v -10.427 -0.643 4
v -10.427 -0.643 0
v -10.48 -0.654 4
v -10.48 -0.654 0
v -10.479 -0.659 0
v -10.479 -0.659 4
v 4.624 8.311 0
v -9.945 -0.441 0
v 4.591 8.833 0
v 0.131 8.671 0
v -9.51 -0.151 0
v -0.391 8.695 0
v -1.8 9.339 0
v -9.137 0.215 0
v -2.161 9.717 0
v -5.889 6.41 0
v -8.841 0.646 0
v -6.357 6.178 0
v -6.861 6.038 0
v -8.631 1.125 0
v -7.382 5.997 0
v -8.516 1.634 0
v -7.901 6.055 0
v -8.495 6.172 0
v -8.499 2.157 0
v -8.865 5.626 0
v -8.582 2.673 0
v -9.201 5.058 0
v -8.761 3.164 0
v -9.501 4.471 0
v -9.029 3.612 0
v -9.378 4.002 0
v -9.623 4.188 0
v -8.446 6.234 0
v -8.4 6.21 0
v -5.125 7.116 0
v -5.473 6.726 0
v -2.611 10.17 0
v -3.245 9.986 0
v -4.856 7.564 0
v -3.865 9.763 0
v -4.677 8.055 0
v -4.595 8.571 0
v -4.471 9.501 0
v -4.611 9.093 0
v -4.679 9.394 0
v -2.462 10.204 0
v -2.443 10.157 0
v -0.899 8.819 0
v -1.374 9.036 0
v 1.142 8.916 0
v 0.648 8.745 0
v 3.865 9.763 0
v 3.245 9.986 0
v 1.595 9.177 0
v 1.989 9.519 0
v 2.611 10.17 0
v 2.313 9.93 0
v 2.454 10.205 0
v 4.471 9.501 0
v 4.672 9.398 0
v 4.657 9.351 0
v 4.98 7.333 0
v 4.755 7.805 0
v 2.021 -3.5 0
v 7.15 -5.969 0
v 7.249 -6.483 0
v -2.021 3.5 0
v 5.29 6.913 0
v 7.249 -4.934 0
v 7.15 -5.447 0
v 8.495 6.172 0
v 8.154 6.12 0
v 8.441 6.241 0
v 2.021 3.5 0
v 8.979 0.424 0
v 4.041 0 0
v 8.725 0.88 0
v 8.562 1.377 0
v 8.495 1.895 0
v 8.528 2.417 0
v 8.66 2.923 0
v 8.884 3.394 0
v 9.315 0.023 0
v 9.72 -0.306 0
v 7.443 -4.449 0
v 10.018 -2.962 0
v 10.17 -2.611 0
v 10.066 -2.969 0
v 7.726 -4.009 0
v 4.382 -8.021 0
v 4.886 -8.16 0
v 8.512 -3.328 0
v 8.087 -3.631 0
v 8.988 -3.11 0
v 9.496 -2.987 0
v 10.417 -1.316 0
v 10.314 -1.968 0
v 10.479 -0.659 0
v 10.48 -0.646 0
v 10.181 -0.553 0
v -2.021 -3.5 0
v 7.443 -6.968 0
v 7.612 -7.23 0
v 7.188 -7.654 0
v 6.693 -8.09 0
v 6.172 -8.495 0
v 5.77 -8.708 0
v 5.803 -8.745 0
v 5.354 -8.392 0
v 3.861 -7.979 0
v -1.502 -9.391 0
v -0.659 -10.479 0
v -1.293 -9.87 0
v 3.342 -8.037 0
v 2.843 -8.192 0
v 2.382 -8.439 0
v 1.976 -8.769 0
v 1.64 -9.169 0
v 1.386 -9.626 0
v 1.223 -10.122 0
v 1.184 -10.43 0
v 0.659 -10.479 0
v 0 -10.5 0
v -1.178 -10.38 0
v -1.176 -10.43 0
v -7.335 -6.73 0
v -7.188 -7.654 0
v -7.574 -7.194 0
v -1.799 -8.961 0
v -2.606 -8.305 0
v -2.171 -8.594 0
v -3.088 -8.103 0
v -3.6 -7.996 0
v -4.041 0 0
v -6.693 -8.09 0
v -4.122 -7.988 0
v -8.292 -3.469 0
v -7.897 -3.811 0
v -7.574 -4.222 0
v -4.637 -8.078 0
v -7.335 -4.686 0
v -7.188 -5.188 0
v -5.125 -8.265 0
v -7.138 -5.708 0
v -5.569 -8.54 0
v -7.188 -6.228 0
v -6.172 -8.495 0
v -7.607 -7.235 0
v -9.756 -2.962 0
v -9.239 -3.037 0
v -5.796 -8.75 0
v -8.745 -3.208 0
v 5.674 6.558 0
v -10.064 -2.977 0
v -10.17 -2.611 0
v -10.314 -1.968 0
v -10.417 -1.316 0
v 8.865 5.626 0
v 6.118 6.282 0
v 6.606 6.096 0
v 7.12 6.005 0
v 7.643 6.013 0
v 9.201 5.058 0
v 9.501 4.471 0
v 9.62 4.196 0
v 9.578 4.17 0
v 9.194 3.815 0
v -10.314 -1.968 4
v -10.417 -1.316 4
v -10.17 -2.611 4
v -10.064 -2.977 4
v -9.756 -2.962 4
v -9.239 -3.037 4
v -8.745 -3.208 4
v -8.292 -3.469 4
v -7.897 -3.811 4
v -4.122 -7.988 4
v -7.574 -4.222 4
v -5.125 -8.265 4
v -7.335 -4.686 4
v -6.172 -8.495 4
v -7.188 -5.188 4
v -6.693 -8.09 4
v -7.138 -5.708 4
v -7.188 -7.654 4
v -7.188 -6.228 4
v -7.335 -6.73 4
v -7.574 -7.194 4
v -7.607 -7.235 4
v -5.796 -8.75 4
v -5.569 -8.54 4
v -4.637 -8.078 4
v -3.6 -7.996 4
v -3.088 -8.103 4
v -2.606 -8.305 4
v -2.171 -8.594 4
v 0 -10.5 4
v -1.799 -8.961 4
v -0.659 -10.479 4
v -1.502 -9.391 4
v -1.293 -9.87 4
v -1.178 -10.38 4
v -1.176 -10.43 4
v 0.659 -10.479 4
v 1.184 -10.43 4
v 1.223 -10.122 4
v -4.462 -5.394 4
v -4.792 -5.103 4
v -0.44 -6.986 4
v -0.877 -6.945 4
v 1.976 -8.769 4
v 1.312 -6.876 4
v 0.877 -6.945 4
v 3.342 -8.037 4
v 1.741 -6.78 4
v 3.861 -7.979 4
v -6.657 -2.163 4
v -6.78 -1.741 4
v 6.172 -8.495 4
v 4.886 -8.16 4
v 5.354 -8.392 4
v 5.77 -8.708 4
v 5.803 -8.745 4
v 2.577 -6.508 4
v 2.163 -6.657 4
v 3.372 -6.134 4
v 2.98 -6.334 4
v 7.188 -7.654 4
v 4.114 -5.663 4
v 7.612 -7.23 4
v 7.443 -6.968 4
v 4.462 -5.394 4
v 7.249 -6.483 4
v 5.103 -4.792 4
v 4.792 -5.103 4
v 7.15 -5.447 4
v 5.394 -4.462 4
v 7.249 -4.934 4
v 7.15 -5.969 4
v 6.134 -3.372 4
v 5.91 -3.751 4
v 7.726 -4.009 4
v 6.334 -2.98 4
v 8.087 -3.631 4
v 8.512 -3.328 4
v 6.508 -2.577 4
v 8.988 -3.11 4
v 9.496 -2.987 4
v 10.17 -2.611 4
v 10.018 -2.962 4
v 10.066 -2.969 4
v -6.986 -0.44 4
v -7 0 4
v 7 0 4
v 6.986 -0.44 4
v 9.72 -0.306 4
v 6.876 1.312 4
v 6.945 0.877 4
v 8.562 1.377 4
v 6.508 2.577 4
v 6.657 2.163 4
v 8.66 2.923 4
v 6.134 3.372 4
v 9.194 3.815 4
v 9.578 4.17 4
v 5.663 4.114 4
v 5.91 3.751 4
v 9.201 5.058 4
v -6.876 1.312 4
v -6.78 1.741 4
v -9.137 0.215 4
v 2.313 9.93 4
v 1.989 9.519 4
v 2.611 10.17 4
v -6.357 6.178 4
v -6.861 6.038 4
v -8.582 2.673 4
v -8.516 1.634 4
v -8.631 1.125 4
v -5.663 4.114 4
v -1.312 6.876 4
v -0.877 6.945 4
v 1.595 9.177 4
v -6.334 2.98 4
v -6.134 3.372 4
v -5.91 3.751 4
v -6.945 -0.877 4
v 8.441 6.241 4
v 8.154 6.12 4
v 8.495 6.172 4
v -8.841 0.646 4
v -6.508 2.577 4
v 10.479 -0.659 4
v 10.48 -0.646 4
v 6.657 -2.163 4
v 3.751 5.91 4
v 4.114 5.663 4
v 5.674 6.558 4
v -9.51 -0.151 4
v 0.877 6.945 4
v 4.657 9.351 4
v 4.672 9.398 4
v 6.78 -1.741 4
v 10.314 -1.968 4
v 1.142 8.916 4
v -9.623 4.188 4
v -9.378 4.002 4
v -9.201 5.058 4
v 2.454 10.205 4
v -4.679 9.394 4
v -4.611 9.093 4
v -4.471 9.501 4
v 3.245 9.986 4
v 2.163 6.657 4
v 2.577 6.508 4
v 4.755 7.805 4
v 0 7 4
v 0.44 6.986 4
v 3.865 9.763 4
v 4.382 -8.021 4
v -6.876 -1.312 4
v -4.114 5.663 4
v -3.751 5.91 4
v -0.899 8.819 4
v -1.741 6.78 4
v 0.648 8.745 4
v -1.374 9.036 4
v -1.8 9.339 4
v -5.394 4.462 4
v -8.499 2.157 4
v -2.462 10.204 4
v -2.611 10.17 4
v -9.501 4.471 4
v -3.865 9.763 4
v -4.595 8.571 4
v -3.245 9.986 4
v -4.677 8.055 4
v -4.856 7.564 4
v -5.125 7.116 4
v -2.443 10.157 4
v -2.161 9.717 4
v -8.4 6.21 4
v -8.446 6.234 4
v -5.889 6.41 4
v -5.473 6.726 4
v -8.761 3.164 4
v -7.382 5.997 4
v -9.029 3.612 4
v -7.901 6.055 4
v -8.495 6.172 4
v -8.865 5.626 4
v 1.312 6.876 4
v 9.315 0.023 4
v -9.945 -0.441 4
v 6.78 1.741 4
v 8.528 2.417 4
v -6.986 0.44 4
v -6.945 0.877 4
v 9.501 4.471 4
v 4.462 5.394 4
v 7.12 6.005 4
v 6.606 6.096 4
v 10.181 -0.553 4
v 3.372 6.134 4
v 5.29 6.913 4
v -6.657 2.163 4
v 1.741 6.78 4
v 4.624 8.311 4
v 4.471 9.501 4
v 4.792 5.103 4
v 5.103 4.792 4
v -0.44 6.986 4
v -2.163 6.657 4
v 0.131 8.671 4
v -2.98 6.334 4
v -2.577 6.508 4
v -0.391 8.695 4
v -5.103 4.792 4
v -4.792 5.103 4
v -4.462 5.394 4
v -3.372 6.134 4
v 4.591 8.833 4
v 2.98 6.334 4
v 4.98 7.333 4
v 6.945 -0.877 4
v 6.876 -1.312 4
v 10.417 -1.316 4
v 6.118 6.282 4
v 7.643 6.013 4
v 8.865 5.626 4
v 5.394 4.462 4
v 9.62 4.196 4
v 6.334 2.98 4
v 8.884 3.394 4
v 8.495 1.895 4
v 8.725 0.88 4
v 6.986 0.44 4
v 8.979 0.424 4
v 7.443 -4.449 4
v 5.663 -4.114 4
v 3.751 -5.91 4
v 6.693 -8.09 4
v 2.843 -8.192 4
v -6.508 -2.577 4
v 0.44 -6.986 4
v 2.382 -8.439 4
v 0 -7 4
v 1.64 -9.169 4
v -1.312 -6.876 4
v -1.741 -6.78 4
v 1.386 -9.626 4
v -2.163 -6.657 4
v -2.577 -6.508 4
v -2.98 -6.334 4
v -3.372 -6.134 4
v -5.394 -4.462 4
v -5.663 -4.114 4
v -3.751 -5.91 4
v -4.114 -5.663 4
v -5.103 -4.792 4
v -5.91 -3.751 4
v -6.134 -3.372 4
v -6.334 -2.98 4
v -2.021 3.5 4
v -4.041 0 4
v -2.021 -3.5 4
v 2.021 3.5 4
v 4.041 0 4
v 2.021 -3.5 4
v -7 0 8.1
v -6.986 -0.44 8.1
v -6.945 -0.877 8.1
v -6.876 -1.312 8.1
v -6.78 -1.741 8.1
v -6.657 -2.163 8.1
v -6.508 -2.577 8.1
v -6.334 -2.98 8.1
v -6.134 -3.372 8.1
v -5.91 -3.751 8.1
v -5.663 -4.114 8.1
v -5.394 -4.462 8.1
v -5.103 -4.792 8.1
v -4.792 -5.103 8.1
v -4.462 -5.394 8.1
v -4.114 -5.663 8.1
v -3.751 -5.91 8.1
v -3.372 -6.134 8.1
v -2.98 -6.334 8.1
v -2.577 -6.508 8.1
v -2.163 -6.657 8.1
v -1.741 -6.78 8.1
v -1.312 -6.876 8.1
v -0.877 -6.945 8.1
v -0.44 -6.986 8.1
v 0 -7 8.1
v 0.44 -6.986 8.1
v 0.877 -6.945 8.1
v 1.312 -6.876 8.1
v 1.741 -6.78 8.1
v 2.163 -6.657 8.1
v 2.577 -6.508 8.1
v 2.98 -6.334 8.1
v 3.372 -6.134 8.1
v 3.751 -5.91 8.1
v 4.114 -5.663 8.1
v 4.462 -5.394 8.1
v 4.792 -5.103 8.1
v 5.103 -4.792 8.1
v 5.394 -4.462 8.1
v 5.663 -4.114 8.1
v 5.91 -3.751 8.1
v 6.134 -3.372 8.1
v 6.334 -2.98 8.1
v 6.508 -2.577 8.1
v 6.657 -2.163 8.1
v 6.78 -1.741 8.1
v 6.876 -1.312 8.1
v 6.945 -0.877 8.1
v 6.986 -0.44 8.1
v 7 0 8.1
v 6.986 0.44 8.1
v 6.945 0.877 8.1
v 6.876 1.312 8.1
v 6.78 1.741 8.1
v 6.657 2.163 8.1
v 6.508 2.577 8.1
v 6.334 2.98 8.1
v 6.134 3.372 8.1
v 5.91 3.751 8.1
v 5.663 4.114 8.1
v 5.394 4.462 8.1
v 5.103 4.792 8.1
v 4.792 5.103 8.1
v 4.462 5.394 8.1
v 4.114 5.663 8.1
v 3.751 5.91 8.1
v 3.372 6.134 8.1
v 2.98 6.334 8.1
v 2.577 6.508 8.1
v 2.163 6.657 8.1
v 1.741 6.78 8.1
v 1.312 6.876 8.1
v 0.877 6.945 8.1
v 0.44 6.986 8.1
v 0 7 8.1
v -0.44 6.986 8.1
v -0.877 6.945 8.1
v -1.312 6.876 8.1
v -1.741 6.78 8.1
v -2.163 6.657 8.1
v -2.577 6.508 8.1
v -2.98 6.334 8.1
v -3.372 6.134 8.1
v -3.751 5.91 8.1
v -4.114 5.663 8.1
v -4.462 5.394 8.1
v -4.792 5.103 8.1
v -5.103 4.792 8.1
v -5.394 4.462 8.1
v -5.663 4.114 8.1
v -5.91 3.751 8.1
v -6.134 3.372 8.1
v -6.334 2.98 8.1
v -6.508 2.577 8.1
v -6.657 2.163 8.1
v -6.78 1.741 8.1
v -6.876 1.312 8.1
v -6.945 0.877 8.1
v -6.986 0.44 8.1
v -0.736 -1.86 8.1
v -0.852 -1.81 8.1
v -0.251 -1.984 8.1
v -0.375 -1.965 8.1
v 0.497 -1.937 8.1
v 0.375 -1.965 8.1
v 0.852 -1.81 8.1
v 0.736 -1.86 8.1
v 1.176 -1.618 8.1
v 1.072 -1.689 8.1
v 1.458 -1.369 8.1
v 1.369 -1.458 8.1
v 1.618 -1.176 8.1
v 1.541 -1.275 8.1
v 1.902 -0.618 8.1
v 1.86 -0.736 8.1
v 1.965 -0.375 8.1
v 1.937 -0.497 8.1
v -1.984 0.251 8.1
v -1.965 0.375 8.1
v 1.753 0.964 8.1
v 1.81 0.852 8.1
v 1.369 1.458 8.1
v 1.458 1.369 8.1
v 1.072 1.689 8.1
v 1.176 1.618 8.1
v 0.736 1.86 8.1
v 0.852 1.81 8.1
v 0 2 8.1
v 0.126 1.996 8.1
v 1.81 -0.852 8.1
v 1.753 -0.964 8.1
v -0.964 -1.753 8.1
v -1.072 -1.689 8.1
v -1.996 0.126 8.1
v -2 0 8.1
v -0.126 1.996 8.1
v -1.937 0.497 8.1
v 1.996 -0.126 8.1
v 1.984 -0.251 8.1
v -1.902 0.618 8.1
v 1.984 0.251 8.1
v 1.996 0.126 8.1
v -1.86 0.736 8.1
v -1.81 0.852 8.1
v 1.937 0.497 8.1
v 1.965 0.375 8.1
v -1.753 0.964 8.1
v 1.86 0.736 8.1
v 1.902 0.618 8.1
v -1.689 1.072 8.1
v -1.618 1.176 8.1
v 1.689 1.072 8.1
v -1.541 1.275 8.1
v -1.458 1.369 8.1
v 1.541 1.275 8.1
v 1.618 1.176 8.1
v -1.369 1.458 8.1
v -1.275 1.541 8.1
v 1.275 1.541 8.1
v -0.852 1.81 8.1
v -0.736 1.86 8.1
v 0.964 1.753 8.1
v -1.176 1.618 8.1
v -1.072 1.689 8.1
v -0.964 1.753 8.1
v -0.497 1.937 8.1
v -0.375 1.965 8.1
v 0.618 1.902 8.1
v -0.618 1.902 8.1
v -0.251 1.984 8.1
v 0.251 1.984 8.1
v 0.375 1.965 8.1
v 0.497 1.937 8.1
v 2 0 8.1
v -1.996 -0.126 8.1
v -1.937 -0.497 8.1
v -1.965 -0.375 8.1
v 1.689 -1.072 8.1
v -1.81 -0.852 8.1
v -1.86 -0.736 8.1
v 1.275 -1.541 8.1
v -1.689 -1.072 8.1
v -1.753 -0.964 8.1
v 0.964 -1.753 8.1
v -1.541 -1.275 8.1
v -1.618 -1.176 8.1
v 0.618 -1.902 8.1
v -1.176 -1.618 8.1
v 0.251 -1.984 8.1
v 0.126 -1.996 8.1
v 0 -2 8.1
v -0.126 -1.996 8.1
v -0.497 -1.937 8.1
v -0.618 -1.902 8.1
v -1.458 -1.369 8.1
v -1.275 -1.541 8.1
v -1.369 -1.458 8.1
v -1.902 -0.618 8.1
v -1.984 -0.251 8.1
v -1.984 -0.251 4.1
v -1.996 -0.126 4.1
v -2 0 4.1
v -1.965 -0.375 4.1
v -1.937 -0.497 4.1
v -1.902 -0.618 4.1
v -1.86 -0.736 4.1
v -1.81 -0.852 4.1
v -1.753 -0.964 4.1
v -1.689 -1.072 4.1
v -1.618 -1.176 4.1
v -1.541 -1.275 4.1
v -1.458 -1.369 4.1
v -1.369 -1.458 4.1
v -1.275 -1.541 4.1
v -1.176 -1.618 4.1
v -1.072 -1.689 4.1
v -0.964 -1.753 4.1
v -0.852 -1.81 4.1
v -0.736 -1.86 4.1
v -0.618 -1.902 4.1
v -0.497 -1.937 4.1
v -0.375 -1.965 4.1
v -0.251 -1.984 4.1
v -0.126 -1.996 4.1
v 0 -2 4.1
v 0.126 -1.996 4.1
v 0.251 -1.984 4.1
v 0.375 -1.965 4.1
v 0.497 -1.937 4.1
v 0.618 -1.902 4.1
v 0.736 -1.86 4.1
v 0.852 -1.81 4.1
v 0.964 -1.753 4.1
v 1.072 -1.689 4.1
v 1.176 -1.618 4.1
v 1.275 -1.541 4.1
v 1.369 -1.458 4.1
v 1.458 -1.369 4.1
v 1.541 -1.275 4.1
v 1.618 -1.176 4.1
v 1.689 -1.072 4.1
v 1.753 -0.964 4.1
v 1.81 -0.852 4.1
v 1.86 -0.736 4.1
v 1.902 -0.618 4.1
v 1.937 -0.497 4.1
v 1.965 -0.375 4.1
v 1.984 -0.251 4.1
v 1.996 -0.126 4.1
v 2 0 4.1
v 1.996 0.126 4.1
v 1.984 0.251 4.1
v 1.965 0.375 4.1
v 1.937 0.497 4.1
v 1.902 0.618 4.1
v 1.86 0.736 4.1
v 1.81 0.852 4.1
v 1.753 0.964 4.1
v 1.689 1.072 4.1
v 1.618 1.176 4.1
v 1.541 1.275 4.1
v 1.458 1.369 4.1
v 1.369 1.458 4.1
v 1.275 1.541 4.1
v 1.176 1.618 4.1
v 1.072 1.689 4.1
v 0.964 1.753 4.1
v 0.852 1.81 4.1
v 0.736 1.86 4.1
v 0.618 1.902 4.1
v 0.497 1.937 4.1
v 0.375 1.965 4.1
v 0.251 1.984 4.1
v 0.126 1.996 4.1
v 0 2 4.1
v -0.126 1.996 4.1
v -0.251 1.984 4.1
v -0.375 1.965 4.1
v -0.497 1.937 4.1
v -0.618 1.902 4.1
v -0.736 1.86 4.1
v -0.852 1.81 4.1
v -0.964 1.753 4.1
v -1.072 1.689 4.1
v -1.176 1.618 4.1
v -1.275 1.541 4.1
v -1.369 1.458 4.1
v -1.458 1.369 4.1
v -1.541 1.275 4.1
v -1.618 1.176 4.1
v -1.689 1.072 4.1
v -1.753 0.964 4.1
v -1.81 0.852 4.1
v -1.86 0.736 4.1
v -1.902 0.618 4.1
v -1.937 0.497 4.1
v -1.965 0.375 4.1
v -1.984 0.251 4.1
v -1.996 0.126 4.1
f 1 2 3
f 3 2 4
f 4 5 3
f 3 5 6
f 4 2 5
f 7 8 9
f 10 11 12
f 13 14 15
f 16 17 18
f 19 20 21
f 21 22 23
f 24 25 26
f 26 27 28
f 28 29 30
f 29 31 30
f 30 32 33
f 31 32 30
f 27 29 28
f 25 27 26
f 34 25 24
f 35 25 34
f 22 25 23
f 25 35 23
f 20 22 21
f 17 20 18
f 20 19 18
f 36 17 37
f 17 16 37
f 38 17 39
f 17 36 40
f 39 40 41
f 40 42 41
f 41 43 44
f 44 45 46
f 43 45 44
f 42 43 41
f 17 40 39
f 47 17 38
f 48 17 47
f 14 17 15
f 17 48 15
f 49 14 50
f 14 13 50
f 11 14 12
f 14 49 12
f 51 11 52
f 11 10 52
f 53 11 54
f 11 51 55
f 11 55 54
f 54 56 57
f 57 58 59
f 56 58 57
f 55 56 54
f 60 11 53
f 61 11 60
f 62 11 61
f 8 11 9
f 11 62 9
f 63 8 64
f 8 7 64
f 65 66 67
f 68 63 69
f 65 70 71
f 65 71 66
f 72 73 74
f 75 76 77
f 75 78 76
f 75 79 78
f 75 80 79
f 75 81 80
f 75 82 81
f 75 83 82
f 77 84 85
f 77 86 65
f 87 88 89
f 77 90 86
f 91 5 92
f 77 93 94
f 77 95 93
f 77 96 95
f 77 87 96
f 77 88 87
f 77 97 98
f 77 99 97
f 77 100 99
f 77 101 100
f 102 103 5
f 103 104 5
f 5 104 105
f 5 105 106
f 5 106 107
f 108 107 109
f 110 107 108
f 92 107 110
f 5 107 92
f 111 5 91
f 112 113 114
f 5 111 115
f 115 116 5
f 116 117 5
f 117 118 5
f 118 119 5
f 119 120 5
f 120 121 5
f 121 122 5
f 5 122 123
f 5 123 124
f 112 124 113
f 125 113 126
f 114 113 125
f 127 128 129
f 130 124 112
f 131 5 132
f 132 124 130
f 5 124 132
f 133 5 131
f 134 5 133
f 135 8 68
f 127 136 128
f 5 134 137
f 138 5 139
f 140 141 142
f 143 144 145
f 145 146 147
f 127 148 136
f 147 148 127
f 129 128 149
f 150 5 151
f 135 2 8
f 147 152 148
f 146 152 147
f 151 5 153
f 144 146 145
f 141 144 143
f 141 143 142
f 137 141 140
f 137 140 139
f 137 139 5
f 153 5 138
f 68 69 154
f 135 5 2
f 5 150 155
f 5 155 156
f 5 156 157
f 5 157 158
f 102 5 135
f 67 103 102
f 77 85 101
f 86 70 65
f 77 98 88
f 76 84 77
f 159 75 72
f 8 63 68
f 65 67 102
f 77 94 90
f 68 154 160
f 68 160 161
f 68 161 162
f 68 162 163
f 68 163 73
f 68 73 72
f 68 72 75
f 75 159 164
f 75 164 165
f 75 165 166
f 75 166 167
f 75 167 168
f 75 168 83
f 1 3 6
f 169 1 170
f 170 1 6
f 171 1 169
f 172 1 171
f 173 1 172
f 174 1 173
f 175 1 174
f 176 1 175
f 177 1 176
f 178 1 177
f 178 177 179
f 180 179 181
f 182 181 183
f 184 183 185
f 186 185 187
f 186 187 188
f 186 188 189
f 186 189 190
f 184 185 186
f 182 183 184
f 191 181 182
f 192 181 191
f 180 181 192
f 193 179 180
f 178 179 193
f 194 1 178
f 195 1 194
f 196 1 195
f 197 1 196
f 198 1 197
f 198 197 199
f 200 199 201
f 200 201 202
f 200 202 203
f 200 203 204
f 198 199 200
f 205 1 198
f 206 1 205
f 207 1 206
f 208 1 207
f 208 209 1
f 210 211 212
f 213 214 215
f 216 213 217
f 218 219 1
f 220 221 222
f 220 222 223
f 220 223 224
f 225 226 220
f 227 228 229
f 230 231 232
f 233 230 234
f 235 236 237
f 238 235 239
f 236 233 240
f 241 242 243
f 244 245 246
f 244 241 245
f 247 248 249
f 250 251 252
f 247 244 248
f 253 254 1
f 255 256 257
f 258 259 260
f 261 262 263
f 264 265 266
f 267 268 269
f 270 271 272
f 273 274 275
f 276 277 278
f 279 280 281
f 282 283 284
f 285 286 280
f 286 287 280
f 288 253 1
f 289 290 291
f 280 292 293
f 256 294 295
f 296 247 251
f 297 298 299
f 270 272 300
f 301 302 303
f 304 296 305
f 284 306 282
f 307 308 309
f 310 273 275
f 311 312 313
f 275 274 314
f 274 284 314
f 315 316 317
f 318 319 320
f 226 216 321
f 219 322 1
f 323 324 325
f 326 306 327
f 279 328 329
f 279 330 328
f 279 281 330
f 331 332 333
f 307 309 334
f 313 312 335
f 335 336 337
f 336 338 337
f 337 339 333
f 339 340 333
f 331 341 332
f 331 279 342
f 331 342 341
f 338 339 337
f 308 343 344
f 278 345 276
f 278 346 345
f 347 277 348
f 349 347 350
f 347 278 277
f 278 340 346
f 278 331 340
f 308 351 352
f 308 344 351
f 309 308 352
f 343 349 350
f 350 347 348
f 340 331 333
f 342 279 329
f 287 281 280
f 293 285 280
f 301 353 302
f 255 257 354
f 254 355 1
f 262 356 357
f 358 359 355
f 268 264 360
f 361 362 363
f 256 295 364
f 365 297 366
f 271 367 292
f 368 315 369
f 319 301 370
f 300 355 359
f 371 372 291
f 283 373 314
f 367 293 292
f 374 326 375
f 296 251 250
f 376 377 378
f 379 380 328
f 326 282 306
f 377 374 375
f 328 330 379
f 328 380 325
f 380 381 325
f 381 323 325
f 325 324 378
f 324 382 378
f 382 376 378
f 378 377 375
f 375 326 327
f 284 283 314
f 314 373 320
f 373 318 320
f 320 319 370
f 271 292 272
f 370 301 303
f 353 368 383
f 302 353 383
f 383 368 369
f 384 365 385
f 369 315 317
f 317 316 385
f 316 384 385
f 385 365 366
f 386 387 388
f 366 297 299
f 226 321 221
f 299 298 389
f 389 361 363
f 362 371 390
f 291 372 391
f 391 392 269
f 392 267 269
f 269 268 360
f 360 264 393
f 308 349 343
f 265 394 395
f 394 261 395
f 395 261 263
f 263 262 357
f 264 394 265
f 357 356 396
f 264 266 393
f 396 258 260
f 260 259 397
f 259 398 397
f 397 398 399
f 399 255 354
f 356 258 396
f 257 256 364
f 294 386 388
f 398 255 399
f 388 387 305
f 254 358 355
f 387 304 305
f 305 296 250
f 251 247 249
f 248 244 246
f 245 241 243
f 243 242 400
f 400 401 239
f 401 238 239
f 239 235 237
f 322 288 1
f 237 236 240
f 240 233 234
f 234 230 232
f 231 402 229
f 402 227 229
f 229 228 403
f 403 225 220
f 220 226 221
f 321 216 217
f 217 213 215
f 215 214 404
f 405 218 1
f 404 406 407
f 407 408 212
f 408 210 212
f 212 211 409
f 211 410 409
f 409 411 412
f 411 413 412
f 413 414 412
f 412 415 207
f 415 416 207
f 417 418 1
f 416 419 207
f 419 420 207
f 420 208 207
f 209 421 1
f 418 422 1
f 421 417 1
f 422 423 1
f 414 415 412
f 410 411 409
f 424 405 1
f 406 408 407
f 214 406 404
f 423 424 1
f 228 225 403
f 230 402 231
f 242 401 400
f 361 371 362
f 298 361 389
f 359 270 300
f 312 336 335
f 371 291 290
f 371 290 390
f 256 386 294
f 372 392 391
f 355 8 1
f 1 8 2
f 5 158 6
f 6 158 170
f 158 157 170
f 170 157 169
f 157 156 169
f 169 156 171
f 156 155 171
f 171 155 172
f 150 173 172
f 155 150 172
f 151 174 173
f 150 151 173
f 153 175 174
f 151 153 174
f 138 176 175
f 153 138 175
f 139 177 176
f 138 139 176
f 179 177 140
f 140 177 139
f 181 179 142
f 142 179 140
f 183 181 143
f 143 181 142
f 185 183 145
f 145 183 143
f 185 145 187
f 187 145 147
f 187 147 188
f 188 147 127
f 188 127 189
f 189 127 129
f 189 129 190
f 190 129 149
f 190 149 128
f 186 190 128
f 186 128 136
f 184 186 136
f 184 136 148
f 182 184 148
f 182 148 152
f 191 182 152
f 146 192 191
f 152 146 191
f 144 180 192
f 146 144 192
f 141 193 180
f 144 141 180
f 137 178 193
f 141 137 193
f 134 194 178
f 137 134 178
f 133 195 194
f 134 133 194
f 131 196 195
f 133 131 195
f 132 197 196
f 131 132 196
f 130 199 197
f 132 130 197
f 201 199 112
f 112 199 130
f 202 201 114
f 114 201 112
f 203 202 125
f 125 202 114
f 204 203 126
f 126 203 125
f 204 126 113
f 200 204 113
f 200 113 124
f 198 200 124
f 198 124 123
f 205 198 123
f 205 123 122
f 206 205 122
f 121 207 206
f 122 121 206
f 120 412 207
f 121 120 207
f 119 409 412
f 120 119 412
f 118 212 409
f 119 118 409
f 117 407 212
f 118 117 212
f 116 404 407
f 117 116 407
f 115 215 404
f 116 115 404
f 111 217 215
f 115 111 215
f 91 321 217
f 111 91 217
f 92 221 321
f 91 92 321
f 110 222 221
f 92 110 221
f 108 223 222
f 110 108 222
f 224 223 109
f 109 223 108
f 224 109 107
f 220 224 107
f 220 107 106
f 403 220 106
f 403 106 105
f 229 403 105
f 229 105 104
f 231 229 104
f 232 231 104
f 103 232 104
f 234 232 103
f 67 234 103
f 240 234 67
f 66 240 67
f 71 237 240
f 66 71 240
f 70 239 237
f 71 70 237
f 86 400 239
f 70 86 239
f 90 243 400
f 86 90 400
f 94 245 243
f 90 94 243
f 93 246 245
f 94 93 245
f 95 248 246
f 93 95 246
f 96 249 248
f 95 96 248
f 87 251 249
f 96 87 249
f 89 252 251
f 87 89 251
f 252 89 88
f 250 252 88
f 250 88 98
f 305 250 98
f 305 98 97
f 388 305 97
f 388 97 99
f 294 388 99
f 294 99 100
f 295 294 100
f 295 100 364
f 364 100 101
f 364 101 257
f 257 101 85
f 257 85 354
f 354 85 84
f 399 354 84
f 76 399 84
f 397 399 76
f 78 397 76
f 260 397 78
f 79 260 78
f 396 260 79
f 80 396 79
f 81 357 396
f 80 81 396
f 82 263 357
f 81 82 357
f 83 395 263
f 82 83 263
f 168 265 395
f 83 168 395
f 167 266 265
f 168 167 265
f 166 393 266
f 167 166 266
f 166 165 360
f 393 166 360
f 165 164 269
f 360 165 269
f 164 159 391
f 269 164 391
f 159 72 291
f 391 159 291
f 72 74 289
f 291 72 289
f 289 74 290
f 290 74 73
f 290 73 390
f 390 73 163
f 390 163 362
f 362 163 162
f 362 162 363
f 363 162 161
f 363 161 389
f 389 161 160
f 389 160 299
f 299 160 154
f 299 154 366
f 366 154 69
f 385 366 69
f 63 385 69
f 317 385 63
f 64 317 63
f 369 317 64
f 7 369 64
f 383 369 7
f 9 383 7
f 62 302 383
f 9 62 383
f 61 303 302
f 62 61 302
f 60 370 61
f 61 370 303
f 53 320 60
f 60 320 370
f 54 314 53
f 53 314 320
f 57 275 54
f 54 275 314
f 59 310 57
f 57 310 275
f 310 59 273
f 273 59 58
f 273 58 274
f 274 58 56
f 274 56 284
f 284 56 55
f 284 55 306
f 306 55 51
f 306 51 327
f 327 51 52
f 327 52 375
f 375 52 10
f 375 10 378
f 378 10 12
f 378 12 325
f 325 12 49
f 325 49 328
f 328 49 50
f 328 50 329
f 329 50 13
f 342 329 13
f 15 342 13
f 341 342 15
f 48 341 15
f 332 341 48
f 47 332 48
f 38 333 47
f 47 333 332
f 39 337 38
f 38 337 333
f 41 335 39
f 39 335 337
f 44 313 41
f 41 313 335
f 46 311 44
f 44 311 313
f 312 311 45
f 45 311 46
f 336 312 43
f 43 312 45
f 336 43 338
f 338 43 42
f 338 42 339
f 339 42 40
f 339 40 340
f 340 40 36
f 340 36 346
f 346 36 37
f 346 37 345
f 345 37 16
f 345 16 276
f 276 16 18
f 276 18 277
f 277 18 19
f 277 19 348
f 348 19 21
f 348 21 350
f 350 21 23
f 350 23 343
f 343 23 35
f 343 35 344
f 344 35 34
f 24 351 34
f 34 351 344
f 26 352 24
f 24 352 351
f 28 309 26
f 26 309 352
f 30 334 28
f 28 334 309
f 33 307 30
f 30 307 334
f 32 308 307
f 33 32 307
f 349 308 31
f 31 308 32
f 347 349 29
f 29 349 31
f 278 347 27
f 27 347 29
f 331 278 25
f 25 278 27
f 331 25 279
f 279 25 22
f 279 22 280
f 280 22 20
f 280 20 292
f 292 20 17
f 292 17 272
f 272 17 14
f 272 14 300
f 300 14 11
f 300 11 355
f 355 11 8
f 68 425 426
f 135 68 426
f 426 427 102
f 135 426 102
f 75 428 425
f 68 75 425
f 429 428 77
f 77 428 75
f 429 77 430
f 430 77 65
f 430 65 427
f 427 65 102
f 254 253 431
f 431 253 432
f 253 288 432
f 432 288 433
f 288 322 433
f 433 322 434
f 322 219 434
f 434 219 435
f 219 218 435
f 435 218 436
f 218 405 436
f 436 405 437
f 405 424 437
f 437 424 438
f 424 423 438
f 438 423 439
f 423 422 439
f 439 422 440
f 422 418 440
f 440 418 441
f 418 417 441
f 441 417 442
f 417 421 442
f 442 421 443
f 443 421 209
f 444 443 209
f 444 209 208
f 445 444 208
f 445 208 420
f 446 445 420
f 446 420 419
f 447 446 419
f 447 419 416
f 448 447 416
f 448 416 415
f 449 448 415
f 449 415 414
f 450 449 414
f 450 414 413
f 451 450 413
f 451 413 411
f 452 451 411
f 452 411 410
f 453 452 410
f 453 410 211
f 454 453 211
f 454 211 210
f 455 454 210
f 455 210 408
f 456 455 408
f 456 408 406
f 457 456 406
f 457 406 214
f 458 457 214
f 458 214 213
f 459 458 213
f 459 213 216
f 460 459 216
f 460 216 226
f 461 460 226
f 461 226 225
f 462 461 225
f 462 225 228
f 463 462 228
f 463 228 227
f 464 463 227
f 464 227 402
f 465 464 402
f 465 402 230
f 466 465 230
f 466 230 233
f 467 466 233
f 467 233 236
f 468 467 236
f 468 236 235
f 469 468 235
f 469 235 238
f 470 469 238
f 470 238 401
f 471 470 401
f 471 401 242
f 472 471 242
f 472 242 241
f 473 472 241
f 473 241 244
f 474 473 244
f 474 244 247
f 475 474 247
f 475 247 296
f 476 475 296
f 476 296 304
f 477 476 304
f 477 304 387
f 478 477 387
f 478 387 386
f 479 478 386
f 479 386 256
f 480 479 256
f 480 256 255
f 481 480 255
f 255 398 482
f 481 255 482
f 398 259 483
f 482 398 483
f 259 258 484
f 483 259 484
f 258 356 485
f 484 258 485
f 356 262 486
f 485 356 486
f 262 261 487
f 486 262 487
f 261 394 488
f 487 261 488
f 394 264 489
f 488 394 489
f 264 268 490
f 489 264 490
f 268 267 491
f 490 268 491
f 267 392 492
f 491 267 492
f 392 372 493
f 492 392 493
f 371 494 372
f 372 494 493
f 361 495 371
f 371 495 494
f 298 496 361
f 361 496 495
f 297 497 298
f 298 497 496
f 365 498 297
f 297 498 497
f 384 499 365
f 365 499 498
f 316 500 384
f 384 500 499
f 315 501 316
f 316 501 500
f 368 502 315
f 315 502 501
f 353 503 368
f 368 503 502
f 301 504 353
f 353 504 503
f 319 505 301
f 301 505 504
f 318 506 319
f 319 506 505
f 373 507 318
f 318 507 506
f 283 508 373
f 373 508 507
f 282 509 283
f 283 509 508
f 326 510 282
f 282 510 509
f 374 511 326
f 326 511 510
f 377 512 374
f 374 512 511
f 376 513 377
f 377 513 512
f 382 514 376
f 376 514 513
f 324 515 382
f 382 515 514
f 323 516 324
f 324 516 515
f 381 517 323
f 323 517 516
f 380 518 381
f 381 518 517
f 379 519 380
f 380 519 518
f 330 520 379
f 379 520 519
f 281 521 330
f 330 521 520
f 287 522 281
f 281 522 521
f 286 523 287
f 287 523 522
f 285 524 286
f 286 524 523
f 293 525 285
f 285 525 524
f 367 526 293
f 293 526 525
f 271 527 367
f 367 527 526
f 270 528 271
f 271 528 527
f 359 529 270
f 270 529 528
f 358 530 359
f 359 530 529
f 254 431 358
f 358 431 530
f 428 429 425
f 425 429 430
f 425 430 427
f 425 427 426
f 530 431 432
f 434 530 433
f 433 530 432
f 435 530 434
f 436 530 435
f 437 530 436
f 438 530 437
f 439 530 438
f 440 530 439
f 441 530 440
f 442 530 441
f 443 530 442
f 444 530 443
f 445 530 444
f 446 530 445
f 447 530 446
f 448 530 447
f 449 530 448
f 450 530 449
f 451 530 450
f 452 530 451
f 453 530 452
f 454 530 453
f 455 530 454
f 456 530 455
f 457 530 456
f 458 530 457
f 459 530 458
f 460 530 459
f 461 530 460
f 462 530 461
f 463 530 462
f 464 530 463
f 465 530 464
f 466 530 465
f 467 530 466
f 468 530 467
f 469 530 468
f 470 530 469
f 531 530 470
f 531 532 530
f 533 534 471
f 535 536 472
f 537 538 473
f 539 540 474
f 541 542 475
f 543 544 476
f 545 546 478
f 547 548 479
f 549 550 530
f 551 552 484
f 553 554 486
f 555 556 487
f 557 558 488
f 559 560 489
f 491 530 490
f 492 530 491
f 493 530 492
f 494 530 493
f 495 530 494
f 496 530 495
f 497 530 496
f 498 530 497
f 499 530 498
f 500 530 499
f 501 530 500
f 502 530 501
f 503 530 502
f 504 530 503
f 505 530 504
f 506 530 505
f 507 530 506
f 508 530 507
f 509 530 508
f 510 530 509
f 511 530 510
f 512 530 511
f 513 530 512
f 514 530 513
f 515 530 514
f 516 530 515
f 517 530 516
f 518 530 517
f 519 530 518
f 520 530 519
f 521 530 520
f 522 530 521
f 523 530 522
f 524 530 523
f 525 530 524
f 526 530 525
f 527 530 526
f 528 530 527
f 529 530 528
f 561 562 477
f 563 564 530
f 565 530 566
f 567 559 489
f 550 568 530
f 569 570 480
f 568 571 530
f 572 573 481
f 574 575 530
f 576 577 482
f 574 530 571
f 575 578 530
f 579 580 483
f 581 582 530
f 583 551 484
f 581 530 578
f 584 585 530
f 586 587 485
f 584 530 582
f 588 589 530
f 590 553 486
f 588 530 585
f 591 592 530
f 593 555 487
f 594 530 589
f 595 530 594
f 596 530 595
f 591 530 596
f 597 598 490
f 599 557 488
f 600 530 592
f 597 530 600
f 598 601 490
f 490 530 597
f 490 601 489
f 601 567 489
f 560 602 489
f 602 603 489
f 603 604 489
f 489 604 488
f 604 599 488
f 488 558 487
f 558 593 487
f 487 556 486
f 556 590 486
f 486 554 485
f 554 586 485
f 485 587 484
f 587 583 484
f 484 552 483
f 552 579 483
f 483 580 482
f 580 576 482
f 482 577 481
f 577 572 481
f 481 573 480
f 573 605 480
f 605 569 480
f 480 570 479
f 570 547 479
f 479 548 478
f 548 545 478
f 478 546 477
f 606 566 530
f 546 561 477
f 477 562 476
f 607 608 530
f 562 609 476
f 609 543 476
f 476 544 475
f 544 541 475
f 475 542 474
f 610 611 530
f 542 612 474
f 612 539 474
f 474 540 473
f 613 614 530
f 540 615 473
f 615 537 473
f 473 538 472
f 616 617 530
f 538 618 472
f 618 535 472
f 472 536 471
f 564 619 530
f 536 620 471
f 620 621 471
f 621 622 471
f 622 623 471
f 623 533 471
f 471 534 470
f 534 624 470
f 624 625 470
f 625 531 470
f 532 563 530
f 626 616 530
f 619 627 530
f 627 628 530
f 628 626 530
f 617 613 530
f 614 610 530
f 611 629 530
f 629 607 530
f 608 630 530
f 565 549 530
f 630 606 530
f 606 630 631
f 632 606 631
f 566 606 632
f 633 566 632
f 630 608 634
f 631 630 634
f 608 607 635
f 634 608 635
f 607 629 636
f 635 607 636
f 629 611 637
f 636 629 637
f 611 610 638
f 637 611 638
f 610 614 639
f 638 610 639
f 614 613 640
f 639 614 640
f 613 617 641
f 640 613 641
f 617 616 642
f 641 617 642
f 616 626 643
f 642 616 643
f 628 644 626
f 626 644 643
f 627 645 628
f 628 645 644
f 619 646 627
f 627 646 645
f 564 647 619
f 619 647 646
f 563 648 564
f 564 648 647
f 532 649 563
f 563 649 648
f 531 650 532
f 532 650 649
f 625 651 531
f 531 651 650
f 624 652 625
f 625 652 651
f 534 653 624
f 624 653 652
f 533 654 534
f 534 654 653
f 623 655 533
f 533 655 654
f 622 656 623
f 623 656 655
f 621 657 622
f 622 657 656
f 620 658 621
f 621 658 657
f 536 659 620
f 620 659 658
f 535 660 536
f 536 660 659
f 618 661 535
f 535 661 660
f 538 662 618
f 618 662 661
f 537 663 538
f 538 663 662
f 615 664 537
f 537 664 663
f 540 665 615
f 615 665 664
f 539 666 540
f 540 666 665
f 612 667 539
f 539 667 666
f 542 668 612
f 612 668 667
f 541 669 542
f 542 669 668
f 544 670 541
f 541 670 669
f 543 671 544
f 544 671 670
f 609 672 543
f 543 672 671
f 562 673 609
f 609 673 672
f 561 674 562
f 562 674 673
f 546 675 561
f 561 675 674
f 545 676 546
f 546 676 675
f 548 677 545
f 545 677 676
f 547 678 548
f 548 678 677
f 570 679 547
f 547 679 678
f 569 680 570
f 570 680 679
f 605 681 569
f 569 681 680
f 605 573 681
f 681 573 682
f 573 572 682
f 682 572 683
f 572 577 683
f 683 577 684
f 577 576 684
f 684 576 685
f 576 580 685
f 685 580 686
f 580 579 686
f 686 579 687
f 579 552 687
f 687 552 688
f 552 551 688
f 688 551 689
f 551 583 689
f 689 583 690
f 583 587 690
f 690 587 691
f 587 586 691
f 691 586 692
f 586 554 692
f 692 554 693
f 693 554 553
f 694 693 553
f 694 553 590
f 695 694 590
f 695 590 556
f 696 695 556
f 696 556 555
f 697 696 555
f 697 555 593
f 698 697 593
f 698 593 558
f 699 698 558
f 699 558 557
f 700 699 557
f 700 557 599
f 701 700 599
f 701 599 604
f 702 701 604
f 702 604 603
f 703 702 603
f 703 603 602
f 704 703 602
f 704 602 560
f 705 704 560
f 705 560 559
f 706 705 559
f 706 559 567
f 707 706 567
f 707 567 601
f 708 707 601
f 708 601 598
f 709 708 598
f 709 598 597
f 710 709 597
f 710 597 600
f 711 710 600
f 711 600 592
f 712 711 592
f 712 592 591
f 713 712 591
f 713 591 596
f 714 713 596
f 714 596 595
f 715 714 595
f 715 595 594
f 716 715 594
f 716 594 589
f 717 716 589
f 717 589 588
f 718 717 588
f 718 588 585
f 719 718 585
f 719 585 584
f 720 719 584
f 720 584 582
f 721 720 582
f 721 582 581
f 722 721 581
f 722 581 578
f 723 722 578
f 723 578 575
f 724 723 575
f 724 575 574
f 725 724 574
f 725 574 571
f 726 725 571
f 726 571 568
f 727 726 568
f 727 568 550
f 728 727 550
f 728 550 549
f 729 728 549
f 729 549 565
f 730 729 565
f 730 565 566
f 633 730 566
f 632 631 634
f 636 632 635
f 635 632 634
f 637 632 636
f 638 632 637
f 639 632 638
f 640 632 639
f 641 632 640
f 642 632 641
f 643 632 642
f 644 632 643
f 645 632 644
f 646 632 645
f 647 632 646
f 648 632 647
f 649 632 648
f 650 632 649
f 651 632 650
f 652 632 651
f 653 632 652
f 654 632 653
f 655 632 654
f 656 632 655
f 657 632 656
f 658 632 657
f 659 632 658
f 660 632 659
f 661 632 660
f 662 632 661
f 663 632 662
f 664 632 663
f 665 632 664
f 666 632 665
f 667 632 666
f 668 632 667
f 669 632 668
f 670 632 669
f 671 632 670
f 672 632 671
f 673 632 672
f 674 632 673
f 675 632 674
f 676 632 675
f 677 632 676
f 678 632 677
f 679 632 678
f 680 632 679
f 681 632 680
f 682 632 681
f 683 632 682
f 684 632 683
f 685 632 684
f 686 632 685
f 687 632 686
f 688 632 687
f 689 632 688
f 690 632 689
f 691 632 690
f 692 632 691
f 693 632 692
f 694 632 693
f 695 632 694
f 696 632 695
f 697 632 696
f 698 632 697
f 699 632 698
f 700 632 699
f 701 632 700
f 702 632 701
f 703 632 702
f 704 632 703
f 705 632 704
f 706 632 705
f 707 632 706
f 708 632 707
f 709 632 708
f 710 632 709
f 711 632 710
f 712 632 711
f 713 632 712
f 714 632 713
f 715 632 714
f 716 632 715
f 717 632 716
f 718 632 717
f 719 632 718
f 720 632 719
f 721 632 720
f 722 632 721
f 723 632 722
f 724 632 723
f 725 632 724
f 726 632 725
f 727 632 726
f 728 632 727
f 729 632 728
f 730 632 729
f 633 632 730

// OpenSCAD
// Parametric thumb screw by Matt Hova
// More info at matthova.com
// Inspired in part by thingiverse.com/thing:11797/ by JRidley

/* CONSTANTS */
precision = 100; // Number of facets to generate for circles
pi = 3.1416; // Yum
slice = 0.1;
nudge = 0.00001;

/* VARIABLES */
bolt_head_diameter = 7;
bolt_head_height = 4;
bolt_diameter = 4;
knob_inner_diameter = bolt_head_diameter * 2; // The top cylinder diameter
knob_outer_diameter = bolt_head_diameter * 3; // The bottom cylinder diameter
knob_height = 8.1;
n_knob_nubs = 9;
knob_cutout_rad = knob_outer_diameter * pi / 24; // Sorta have to eyeball it on this one

/* DRAW! */
thumb_screw();

/* FUNCTIONS */
module thumb_screw(){
	difference(){
	
		union(){
			cylinder(r = knob_inner_diameter / 2, h = knob_height, $fn = precision); // top circle
			cylinder(r = knob_outer_diameter / 2, h = bolt_head_height, $fn = precision); // bottom circle
		}
	
		// Great Idea by JRidley to add a thin bridging layer instead of printing supports
		translate([0, 0, bolt_head_height + slice]) 
		cylinder(r = bolt_diameter / 2, h = knob_height, $fn = precision); // bolt hole
	
		// Here comes some TRIG!!! 
		// I'm using $fn = 6 to make a circle with 6 faces, (a.k.a. a hexagon)
		// A hexagon is made up of twelve 30º, 60º, 90º triangles
		//
		// In order to compensate for the bolt diameter
		// we will reach the desired hexagon size by dividing bolt_head_diameter by sin(60) aka sqrt(3) / 2
		cylinder(r = (bolt_head_diameter * 2 / sqrt(3)) / 2, h = bolt_head_height, $fn = 6); // bolt head hole. 
	
		knob_nubs(); // The 8 weird little nubs on the edge of the knob. Is there a better term for this?
	}
}

module knob_nubs(){
	//Creates n_knob_nubs cylinders, dispersed evenly around the edge of the outer knob
	for(i = [0:n_knob_nubs]){
		rotate([0, 0, i * 360 / n_knob_nubs])
		translate([0, knob_outer_diameter / 2 + knob_cutout_rad / 3, 0])
		cylinder(r = knob_cutout_rad, h = knob_height - bolt_head_height, $fn = precision/3);
	}
}
